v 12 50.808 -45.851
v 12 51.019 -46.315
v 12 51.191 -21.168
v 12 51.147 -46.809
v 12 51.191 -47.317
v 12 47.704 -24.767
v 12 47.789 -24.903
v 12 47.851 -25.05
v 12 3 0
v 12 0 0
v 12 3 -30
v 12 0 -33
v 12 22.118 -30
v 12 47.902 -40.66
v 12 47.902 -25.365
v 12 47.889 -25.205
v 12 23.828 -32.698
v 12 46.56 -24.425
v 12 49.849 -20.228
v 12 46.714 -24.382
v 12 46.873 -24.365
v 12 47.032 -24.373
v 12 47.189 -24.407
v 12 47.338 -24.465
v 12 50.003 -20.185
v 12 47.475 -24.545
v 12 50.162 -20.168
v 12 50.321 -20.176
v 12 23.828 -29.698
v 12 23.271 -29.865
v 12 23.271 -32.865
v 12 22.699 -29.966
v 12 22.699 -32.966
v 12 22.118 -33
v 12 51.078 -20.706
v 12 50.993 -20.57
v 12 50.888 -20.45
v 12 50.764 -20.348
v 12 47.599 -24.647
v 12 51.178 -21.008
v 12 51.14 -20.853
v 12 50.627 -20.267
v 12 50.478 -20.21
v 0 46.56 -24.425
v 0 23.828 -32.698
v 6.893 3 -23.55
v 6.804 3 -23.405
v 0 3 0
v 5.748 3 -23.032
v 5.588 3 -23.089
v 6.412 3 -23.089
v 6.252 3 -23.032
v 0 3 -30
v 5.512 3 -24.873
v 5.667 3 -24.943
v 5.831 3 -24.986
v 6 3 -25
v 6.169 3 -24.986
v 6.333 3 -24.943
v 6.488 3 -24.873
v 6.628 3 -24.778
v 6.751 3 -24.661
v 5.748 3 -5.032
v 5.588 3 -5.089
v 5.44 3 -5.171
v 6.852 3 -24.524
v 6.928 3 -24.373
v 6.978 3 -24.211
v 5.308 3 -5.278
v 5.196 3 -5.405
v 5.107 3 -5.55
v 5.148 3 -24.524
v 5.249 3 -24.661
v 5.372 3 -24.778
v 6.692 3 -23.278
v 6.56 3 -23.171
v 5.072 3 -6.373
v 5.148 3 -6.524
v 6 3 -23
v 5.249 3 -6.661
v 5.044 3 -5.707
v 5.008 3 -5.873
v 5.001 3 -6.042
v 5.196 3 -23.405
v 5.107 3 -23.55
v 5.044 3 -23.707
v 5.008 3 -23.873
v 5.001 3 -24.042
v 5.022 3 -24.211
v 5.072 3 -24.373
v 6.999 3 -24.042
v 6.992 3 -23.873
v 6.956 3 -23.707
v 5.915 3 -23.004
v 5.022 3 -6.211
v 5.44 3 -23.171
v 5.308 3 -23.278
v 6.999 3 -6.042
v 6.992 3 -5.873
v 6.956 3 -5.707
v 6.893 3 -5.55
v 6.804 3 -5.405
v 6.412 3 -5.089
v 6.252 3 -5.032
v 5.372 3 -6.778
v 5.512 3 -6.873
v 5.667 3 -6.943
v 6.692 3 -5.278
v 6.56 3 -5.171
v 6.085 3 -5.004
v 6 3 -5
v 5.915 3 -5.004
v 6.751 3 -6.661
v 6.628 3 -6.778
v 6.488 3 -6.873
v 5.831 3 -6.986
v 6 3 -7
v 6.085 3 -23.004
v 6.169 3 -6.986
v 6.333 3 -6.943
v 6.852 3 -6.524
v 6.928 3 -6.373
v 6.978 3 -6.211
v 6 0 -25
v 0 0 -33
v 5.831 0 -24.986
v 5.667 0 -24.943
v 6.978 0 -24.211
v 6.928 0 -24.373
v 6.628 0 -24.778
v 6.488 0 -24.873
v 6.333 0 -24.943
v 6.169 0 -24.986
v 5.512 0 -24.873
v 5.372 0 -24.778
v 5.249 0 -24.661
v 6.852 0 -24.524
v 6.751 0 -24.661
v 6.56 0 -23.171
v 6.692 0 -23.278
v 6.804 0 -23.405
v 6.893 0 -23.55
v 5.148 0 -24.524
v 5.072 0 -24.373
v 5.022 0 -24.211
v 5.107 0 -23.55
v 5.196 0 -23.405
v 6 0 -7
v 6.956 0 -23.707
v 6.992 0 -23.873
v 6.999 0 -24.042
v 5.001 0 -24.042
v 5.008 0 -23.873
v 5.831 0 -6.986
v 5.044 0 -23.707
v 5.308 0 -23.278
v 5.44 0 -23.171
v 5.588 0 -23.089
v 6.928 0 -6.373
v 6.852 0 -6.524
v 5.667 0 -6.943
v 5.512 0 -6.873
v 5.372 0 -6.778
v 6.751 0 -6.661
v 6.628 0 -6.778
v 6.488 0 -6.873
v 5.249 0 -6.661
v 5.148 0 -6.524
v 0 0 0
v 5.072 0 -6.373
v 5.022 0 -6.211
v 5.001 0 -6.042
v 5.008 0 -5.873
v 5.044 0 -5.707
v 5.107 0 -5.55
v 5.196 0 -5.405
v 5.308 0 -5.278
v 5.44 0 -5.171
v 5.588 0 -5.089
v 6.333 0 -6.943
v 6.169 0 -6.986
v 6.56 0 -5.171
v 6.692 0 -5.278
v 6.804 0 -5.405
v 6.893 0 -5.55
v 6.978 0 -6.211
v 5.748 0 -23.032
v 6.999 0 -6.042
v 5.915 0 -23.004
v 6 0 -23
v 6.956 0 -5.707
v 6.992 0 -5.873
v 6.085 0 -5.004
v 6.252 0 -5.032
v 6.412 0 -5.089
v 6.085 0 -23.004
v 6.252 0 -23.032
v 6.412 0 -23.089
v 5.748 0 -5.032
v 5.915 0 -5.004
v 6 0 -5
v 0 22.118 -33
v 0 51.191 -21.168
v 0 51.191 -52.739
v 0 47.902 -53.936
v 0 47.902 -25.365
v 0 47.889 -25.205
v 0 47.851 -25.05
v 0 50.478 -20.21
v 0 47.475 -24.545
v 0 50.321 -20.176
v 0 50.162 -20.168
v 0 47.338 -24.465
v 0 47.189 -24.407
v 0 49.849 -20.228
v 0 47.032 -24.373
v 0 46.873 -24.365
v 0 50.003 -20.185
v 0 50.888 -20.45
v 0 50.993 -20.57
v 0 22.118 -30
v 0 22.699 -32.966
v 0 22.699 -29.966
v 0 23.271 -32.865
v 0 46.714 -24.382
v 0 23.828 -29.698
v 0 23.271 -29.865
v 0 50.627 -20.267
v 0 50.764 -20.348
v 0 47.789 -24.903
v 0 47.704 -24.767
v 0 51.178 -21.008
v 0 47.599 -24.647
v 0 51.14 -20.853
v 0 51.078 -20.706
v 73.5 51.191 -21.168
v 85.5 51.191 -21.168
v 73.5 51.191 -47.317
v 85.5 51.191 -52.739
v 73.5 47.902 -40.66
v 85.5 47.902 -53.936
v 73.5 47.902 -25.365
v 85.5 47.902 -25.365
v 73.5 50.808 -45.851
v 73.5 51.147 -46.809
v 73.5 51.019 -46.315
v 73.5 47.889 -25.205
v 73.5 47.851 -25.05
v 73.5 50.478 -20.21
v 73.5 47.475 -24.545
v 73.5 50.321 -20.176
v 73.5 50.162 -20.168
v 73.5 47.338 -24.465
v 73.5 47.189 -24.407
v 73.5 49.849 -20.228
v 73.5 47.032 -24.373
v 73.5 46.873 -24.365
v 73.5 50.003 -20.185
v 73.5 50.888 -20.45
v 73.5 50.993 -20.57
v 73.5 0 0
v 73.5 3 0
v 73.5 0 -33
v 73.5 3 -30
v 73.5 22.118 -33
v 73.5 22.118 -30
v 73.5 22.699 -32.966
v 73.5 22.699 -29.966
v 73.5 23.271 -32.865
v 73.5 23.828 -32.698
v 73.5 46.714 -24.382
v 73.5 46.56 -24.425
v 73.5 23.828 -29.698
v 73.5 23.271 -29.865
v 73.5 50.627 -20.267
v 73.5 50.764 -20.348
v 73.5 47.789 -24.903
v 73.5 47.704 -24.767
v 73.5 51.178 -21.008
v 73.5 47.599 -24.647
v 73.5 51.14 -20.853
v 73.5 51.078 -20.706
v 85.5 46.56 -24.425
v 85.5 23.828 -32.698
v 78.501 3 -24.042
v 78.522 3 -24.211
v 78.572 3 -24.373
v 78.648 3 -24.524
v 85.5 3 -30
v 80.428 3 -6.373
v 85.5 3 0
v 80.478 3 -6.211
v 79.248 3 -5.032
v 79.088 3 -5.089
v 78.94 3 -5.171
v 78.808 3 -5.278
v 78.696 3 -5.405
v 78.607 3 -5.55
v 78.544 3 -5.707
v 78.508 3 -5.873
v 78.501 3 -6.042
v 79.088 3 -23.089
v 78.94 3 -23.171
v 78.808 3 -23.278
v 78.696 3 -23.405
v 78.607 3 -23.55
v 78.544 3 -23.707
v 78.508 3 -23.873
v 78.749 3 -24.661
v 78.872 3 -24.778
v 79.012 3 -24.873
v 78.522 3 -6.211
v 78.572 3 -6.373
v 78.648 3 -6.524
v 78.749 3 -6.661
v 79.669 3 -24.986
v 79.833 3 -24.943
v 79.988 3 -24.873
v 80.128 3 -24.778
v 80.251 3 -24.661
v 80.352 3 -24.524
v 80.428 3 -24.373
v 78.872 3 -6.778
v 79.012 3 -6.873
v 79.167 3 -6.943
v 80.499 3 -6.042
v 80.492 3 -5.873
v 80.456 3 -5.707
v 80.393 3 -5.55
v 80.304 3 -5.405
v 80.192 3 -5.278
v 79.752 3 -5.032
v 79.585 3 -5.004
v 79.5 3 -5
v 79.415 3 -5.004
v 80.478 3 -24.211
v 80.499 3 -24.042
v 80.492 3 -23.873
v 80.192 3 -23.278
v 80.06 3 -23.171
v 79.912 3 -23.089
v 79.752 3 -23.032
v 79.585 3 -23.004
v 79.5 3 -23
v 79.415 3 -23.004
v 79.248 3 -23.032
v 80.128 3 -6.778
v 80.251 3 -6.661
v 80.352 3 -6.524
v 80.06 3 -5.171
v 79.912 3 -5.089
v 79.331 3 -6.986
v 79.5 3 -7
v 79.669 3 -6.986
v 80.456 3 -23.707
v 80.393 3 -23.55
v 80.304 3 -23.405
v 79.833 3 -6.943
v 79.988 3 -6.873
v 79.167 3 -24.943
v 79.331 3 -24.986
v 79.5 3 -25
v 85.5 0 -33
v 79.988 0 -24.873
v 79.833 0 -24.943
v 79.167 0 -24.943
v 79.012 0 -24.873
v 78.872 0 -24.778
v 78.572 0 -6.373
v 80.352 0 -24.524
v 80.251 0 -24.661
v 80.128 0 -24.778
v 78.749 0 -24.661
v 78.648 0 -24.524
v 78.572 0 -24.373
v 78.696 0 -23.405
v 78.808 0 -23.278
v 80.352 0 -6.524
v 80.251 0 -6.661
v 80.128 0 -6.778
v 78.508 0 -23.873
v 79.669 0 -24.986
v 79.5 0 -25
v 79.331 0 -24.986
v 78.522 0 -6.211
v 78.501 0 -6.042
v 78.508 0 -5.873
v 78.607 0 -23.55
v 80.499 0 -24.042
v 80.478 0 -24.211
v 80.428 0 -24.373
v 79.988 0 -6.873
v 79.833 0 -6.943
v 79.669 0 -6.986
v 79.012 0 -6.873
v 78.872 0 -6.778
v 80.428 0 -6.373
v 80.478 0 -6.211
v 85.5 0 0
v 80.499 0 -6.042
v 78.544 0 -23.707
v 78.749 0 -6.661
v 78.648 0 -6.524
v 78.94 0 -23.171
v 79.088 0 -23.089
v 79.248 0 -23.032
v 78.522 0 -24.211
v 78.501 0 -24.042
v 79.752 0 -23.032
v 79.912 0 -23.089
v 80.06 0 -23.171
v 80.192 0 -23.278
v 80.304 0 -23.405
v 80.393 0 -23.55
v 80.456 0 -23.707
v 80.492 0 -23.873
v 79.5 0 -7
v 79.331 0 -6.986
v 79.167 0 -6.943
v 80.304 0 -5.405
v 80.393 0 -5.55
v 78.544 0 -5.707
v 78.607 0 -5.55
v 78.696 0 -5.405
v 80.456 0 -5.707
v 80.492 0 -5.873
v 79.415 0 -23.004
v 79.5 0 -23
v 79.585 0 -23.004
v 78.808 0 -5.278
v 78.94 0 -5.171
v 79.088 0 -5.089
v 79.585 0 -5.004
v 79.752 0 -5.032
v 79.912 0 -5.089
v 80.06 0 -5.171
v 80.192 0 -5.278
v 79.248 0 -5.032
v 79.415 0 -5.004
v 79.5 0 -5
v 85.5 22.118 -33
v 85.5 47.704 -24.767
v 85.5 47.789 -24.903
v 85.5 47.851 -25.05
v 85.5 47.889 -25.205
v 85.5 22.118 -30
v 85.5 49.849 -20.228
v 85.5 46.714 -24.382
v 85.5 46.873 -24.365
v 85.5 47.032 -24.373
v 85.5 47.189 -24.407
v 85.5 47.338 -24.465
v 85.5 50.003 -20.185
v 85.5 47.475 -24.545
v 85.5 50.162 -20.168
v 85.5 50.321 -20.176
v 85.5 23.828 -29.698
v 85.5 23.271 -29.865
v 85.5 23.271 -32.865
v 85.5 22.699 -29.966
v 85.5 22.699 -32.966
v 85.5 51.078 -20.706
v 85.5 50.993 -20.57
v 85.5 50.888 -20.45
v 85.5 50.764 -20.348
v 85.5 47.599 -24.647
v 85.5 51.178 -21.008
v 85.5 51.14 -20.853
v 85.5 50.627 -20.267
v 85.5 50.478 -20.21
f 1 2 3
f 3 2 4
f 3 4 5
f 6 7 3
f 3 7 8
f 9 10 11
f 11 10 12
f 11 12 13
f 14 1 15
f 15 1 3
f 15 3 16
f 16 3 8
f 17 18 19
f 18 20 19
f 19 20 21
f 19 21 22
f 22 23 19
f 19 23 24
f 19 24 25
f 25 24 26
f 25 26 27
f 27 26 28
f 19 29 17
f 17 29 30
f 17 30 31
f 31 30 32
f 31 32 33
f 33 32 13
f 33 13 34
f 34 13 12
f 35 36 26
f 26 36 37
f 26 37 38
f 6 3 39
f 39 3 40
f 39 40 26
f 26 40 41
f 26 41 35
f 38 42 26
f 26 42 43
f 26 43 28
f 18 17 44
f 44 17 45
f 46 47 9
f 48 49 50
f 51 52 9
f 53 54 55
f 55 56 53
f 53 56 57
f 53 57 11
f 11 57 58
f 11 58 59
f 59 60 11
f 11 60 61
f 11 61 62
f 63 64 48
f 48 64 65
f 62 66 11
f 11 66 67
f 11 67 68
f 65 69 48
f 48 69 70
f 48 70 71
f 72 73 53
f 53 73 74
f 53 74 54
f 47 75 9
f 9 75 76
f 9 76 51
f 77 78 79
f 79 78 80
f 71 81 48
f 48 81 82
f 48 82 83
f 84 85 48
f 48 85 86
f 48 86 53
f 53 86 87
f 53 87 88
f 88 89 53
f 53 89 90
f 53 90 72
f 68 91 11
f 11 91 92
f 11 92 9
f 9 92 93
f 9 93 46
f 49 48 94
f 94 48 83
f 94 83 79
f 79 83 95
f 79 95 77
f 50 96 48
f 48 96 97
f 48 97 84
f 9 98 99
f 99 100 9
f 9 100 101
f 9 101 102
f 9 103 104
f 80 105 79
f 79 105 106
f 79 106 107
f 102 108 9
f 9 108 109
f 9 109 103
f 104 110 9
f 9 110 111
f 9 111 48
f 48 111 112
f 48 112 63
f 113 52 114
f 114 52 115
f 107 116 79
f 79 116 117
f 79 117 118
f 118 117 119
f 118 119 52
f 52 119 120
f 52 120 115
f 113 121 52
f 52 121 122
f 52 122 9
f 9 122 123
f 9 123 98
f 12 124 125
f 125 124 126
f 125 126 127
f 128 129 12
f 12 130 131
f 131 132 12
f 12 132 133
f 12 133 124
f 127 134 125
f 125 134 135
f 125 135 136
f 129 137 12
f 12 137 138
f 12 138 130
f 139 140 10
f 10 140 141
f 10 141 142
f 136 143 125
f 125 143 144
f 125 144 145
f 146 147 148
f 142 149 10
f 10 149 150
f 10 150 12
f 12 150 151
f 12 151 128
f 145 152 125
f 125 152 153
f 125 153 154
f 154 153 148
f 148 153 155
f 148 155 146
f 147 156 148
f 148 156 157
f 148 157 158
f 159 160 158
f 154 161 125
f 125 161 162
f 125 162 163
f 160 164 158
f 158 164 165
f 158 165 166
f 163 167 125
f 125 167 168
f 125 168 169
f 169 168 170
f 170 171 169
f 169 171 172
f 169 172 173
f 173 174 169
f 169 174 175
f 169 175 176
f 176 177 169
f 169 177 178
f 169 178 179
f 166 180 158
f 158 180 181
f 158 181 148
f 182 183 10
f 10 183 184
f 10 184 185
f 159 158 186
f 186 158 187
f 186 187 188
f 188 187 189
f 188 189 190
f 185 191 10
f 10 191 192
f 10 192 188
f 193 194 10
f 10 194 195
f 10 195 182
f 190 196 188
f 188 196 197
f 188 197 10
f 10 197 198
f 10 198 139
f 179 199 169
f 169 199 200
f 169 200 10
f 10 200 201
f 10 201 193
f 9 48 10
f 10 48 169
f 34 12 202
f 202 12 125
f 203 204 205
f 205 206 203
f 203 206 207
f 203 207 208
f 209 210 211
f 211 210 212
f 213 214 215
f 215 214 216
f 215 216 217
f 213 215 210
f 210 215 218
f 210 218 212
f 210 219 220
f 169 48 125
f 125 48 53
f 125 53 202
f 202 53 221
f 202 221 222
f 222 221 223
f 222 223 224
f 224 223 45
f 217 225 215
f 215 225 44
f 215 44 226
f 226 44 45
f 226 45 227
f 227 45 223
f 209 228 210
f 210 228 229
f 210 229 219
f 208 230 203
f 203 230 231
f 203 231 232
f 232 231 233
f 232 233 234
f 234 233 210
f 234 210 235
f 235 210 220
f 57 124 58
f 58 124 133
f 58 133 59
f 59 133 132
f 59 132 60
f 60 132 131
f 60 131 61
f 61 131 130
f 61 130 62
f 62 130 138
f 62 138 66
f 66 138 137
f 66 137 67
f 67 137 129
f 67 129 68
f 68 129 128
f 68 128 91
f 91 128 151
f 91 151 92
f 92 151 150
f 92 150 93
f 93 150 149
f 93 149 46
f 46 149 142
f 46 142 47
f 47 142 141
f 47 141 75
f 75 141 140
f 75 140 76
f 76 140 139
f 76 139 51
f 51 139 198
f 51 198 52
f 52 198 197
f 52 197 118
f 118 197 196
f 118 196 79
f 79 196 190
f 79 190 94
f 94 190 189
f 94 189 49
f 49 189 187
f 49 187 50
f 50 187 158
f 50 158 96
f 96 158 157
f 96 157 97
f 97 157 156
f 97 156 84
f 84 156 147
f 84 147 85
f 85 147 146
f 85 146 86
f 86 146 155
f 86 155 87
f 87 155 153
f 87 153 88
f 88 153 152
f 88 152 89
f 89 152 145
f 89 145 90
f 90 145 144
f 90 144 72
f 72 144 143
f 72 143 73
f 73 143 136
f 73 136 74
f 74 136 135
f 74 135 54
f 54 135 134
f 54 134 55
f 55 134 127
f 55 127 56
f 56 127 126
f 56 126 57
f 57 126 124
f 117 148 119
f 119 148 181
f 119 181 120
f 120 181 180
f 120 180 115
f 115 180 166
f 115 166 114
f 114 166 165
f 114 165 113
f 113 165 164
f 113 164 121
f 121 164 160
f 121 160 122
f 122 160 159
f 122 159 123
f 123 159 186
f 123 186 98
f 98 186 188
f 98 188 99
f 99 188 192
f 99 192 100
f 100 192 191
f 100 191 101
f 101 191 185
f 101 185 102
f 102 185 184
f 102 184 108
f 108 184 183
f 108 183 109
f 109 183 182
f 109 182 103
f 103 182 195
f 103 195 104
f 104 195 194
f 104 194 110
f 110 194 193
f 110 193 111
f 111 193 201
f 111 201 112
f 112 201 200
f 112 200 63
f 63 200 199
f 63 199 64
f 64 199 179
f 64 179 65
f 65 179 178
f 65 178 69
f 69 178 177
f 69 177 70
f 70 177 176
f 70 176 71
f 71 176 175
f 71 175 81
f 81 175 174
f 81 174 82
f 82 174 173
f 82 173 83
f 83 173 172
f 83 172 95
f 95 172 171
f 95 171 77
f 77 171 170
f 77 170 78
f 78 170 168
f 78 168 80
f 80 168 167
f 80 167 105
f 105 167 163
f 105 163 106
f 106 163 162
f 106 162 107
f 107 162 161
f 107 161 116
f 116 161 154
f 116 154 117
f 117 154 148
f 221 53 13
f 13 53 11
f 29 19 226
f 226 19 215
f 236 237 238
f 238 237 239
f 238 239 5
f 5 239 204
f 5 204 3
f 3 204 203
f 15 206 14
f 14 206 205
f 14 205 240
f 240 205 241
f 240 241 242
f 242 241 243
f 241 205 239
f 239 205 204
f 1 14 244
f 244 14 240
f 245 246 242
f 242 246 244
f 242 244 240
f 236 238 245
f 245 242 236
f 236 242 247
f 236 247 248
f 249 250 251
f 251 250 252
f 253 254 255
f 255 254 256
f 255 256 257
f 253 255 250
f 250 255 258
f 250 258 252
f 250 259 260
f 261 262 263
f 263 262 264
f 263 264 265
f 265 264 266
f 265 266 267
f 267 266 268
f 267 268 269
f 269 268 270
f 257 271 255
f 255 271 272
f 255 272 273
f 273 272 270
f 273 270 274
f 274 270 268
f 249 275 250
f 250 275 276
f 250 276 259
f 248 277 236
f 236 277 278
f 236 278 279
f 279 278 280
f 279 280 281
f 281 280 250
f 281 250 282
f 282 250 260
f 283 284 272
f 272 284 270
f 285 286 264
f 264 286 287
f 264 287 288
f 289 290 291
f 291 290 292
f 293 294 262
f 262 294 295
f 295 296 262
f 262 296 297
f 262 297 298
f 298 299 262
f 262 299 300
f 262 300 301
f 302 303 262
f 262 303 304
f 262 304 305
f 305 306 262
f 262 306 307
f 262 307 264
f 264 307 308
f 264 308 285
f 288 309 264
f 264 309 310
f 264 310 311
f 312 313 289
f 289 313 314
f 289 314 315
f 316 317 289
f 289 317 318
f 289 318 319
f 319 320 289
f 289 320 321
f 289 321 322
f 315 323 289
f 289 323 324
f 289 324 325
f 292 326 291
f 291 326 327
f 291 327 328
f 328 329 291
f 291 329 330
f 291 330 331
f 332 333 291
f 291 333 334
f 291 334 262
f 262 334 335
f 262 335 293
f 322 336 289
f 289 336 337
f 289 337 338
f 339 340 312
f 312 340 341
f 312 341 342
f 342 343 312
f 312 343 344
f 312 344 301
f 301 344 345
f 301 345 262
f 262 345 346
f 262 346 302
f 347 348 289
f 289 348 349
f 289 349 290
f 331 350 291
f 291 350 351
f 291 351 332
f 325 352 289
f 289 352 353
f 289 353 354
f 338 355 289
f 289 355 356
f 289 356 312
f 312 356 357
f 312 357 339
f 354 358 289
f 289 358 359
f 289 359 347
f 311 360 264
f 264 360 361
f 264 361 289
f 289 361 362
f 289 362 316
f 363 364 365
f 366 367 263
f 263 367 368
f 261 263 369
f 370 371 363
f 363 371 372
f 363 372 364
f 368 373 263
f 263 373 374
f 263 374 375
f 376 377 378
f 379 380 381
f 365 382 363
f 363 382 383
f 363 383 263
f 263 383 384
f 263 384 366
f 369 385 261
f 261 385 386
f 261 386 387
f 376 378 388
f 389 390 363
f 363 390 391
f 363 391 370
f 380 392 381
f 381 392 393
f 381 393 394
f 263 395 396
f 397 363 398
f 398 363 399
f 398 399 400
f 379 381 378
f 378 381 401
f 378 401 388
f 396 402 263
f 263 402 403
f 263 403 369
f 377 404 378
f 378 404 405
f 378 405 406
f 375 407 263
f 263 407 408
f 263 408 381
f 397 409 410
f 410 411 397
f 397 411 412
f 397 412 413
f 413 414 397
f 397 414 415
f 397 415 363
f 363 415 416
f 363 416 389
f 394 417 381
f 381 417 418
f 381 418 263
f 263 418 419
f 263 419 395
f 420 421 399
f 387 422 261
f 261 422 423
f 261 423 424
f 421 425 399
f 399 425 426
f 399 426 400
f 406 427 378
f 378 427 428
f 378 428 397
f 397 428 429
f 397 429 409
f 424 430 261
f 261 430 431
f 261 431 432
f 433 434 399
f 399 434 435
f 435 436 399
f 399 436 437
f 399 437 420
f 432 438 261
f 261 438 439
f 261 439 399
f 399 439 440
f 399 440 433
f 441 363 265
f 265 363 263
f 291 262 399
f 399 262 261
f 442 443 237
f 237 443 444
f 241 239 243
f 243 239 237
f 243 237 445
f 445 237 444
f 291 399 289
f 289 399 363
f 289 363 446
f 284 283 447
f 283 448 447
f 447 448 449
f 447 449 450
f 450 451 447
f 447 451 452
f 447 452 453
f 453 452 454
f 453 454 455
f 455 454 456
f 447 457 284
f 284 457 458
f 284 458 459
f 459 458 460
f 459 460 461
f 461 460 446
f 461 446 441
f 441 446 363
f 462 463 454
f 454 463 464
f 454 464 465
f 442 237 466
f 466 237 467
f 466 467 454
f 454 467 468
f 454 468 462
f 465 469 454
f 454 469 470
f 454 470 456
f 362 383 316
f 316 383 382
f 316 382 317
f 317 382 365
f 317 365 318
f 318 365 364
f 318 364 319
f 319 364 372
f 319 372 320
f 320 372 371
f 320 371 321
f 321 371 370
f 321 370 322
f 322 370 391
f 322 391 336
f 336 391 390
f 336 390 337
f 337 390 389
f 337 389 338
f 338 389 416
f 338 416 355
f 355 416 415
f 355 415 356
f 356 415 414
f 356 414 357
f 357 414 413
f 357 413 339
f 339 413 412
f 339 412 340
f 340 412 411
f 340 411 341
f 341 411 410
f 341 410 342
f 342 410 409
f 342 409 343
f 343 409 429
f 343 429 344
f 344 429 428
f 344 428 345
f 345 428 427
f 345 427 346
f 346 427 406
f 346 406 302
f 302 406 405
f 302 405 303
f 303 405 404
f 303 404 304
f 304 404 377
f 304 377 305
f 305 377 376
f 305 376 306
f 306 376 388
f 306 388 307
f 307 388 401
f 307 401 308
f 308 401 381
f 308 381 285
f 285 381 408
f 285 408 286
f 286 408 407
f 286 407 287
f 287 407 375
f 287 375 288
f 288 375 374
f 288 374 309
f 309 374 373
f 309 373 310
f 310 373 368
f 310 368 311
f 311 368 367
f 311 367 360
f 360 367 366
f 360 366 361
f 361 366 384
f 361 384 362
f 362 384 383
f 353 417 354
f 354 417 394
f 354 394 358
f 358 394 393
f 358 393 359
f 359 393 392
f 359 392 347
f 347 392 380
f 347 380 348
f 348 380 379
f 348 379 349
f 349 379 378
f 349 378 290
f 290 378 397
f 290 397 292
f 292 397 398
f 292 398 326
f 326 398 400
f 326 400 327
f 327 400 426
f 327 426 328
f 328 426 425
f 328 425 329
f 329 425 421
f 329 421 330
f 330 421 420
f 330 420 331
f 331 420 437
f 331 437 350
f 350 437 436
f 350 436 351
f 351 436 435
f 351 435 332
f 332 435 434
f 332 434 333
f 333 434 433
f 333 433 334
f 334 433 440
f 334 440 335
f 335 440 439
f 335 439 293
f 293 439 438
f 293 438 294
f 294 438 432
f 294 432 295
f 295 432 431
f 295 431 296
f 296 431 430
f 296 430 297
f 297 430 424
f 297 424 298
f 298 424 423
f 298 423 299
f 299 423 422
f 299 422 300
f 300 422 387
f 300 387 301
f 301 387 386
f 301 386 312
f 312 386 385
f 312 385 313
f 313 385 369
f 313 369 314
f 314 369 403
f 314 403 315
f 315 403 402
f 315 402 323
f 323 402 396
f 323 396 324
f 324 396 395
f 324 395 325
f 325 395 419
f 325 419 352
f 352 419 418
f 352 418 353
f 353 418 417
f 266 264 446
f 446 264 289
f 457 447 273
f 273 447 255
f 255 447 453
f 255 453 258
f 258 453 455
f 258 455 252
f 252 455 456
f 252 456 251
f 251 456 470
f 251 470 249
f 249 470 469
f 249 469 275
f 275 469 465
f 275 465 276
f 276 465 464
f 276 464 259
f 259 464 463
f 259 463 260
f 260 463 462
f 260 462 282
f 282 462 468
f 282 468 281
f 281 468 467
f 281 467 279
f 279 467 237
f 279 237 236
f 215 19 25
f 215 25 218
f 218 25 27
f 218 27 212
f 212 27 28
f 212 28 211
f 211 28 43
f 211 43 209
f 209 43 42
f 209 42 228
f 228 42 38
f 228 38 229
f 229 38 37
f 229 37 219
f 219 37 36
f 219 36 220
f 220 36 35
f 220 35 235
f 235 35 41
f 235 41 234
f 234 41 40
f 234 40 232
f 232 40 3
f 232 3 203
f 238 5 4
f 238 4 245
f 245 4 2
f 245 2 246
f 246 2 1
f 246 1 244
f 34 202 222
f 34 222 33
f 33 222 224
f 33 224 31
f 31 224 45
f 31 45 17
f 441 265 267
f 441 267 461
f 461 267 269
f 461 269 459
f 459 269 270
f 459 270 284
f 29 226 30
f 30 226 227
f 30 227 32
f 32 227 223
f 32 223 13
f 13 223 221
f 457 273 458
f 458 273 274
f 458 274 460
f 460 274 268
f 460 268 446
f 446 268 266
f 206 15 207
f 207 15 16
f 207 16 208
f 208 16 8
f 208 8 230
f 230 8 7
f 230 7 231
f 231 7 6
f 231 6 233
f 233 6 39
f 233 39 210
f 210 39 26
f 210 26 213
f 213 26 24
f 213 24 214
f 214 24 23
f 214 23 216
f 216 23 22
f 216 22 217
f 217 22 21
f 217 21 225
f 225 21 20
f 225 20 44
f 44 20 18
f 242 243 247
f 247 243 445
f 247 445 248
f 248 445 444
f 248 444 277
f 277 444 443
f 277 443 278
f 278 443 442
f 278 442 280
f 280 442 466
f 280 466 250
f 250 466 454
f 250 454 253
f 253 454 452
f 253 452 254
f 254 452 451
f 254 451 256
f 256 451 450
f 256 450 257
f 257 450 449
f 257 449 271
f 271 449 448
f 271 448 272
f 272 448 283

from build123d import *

# Parameters (mm, degrees)
SKETCH1_W             = 12
SKETCH1_H             = 33
SKETCH1_R             = 1
BOSS_EXTRUDE1_DEPTH   = 3
BOSS_EXTRUDE1_2_DEPTH = 3
SKETCH2_W             = 12
SKETCH2_H             = 3
BOSS_EXTRUDE2_DEPTH   = 20
SKETCH3_W             = 12
SKETCH3_H             = 3
BOSS_EXTRUDE3_DEPTH   = 30
SKETCH5_W             = 12
SKETCH5_H             = 3.5
BOSS_EXTRUDE4_DEPTH   = 30
BOSS_EXTRUDE5_DEPTH   = 61.5
FILLET2_R             = 1
FILLET3_R             = 3
FILLET4_R             = 5
FILLET5_R             = 5
FILLET6_R             = 1


with BuildPart() as part:
    # Sketch1 → Boss-Extrude1 (new body)
    with BuildSketch(Plane(origin=(0, 0, 0), x_dir=(1, 0, 0), z_dir=(0, 1, 0))):
        with Locations((6, 16.5)):
            Rectangle(SKETCH1_W, SKETCH1_H)
        with Locations((6, 24)):
            Circle(SKETCH1_R, mode=Mode.SUBTRACT)
        with Locations((6, 6)):
            Circle(SKETCH1_R, mode=Mode.SUBTRACT)
    extrude(amount=BOSS_EXTRUDE1_DEPTH)



with BuildPart() as body_2:
    # Sketch1 → Boss-Extrude1 2 (new body)
    with BuildSketch(Plane(origin=(0, 0, 0), x_dir=(1, 0, 0), z_dir=(0, 1, 0))):
        with Locations((79.5, 16.5)):
            Rectangle(SKETCH1_W, SKETCH1_H)
        with Locations((79.5, 24)):
            Circle(SKETCH1_R, mode=Mode.SUBTRACT)
        with Locations((79.5, 6)):
            Circle(SKETCH1_R, mode=Mode.SUBTRACT)
    extrude(amount=BOSS_EXTRUDE1_2_DEPTH)


with BuildPart() as part_1:
    add(part.part)

    add(body_2.part)  # Boss-Extrude2 merges body 2
    # Sketch2 → Boss-Extrude2 (add)
    with BuildSketch(Plane(origin=(0, 3, 0), x_dir=(1, 0, 0), z_dir=(0, 1, 0))):
        with Locations((6, 31.5)):
            Rectangle(SKETCH2_W, SKETCH2_H)
        with Locations((79.5, 31.5)):
            Rectangle(SKETCH2_W, SKETCH2_H)
    extrude(amount=BOSS_EXTRUDE2_DEPTH)

    # Sketch3 → Boss-Extrude3 (add, along a direction that is not the sketch's normal)
    with BuildSketch(Plane(origin=(0, 23, 0), x_dir=(1, 0, 0), z_dir=(0, 1, 0))):
        with Locations((79.5, 31.5)):
            Rectangle(SKETCH3_W, SKETCH3_H)
        with Locations((6, 31.5)):
            Rectangle(SKETCH3_W, SKETCH3_H)
    extrude(amount=BOSS_EXTRUDE3_DEPTH, dir=(0, 0.939692621, 0.342020143))

    # Sketch5 → Boss-Extrude4 (add, along a direction that is not the sketch's normal)
    with BuildSketch(Plane(origin=(0, 13.296484464, -36.531790823), x_dir=(-1, 0, 0), z_dir=(0, 0.342020143, -0.939692621))):
        with Locations((-79.5, 38.576265548)):
            Rectangle(SKETCH5_W, SKETCH5_H)
        with Locations((-6, 38.576265548)):
            Rectangle(SKETCH5_W, SKETCH5_H)
    extrude(amount=BOSS_EXTRUDE4_DEPTH, dir=(0, 0, -1))

    # Sketch6 → Boss-Extrude5 (add)
    with BuildSketch(Plane(origin=(12, 0, 0), x_dir=(0, 0, -1), z_dir=(1, 0, 0))):
        Polygon((53.936466202, 47.901854451), (52.7393957, 51.190778624), (46.533858727, 51.190778624), (40.660160277, 47.901854451), align=None)
    extrude(amount=BOSS_EXTRUDE5_DEPTH)

    # Fillet2
    fillet2_edges = [part_1.edges().sort_by_distance(p)[0] for p in [
        (6, 51.190778624, -19.7393957),
        (79.5, 51.190778624, -19.7393957),
    ]]
    fillet(fillet2_edges, radius=FILLET2_R)

    # Fillet3
    fillet3_edges = [part_1.edges().sort_by_distance(p)[0] for p in [
        (42.75, 51.190778624, -46.533858727),
    ]]
    fillet(fillet3_edges, radius=FILLET3_R)

    # Fillet4
    fillet4_edges = [part_1.edges().sort_by_distance(p)[0] for p in [
        (6, 23, -33),
        (79.5, 23, -33),
    ]]
    fillet(fillet4_edges, radius=FILLET4_R)

    # Fillet5
    fillet5_edges = [part_1.edges().sort_by_distance(p)[0] for p in [
        (6, 23, -30),
        (79.5, 23, -30),
    ]]
    fillet(fillet5_edges, radius=FILLET5_R)

    # Fillet6
    fillet6_edges = [part_1.edges().sort_by_distance(p)[0] for p in [
        (6, 47.901854451, -23.936466202),
        (79.5, 47.901854451, -23.936466202),
    ]]
    fillet(fillet6_edges, radius=FILLET6_R)


solid = part_1.part
